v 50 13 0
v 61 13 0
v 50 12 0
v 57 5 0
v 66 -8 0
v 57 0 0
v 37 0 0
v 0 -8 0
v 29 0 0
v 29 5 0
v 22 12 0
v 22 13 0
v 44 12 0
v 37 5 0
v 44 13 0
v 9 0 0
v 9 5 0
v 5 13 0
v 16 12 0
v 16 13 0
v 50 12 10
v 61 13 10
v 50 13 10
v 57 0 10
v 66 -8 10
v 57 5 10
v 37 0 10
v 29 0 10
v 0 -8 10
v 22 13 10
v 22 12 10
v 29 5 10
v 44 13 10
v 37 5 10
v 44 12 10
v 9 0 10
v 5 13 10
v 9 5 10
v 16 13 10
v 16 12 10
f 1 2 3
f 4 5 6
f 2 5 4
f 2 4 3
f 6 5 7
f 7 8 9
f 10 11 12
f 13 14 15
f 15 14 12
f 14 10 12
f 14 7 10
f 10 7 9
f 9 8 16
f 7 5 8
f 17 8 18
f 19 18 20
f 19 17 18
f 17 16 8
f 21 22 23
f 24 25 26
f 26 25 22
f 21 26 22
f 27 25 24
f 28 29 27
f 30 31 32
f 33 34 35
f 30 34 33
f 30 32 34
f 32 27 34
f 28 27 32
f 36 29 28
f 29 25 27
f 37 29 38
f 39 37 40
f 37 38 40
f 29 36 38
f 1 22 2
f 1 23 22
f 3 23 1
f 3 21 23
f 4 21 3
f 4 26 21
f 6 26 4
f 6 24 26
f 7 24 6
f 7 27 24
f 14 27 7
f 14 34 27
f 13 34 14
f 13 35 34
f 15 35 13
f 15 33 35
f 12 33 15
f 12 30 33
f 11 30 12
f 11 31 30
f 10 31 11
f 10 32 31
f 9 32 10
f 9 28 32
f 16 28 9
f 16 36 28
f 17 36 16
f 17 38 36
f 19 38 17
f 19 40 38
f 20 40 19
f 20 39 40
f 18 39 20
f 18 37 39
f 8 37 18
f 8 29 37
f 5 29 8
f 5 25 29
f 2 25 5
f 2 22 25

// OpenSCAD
// file: vector.scad
function is_nan(x) = x != x ;

// reverse vector
function reverse(v) = [for (i =[len(v)-1:-1:0]) v[i]];
// repeat vector n-times
function repeat(v, n) = [for (i=[0:n*len(v)-1])  v[ i%len(v) ] ];
// allow negative indexes for vector (counting from the back). -1 is last element in array
function v_index(v, n) = is_undef(n) ? len(v) : n < 0 ? len(v)+n : n ;
// cut slice of vertor. `start` included , `end` excluded.
function slice(v, start, end=undef) = [for (i=[start:v_index(v,end)-1]) v[i] ];

function v_add(v, n) = [for (i=[0:len(v)-1]) v[i]+n ];

assert(reverse([1,2,3]) == [3,2,1]);
assert(repeat([1,2],3) ==  [1, 2, 1, 2, 1, 2]);
assert(v_index([1,2,3],-1)==2);
assert(v_index([1,2,3],0) == 0);
assert(v_index([1,2,3],undef)==3);
assert(slice([1,2,3],1,-1)==[2]);
assert(slice([1,2,3],1)==[2,3]);
assert(v_add([1,2,3],1)==[2,3,4]);
// file: 2d.scad
use <vector.scad>

function max_x(a, i = 0) = (len(a) == 0) ? 0 : (i < len(a) - 1) ? max(a[i][0], max_x(a, i+1)) : a[i][0];
function shift_x(a, dx, scaler=1) = [for ( p=a) [scaler*p[0]+dx,p[1]] ];
function inverse_x(a) = shift_x(reverse(a),max_x(a),-1);

function concat_with_undefs(prev,next) = 
    len(prev) == 0 ? next : 
        let (prev_last_p = prev[v_index(prev,-1)]) 
        is_undef(prev_last_p[1])  
            ? concat(slice(prev,0,-1),[[prev_last_p[0],next[0][1]]],next) 
            : is_undef(next[0][1]) 
                ? concat(prev, [[next[0][0],prev_last_p[1]]], slice(next,1)) 
                : concat(prev, next) ;

function join_poly(polys, r = [], i=0) = (i < len(polys)) ? 
    join_poly( polys, concat_with_undefs(r,shift_x(polys[i],max_x(r))) ,i+1) : r;

function line_segment(p1,p2) = [p1,[p2[0]-p1[0], p2[1] - p1[1]]];

function ls_angle(ls) = atan(ls[1][1]/ls[1][0]);

function interpolate_point(ls,fraction) =  [
    ls[0][0] + fraction*ls[1][0],
    ls[0][1] + fraction*ls[1][1]
];

function bezier_curve(p1 , p2,  p3) =
    [line_segment(p1,p2), line_segment(p2, p3)];

function curve_point(bc, fraction) =
    interpolate_point(
        line_segment(
            interpolate_point(bc[0],fraction), 
            interpolate_point(bc[1], fraction)), 
        fraction);

function bc_poly(bc, n_points=10) = [for ( f = [0:1/n_points:1]) curve_point(bc, f)] ;

function rake_poly(up_ramp, down_to_valley, n_of_valleys) = 
    join_poly(concat(
        [up_ramp],
        repeat(
            [
                down_to_valley, 
                inverse_x(down_to_valley) // up on other side of the valley
            ], 
            n_of_valleys),
        [inverse_x(up_ramp)] // down ramp
    ));

module flat_hanger(n, ramp, down_to_valley){
    polygon(points=rake_poly(ramp, down_to_valley, n));
}
// main file
use <2d.scad>

profile= [[0, 13], [11, 13], [11, 12], [4, 5], [4, 0], [14, 0]];
ease=[[0,-8],[5,undef]];

linear_extrude(height=10) flat_hanger(2, ease, profile);
